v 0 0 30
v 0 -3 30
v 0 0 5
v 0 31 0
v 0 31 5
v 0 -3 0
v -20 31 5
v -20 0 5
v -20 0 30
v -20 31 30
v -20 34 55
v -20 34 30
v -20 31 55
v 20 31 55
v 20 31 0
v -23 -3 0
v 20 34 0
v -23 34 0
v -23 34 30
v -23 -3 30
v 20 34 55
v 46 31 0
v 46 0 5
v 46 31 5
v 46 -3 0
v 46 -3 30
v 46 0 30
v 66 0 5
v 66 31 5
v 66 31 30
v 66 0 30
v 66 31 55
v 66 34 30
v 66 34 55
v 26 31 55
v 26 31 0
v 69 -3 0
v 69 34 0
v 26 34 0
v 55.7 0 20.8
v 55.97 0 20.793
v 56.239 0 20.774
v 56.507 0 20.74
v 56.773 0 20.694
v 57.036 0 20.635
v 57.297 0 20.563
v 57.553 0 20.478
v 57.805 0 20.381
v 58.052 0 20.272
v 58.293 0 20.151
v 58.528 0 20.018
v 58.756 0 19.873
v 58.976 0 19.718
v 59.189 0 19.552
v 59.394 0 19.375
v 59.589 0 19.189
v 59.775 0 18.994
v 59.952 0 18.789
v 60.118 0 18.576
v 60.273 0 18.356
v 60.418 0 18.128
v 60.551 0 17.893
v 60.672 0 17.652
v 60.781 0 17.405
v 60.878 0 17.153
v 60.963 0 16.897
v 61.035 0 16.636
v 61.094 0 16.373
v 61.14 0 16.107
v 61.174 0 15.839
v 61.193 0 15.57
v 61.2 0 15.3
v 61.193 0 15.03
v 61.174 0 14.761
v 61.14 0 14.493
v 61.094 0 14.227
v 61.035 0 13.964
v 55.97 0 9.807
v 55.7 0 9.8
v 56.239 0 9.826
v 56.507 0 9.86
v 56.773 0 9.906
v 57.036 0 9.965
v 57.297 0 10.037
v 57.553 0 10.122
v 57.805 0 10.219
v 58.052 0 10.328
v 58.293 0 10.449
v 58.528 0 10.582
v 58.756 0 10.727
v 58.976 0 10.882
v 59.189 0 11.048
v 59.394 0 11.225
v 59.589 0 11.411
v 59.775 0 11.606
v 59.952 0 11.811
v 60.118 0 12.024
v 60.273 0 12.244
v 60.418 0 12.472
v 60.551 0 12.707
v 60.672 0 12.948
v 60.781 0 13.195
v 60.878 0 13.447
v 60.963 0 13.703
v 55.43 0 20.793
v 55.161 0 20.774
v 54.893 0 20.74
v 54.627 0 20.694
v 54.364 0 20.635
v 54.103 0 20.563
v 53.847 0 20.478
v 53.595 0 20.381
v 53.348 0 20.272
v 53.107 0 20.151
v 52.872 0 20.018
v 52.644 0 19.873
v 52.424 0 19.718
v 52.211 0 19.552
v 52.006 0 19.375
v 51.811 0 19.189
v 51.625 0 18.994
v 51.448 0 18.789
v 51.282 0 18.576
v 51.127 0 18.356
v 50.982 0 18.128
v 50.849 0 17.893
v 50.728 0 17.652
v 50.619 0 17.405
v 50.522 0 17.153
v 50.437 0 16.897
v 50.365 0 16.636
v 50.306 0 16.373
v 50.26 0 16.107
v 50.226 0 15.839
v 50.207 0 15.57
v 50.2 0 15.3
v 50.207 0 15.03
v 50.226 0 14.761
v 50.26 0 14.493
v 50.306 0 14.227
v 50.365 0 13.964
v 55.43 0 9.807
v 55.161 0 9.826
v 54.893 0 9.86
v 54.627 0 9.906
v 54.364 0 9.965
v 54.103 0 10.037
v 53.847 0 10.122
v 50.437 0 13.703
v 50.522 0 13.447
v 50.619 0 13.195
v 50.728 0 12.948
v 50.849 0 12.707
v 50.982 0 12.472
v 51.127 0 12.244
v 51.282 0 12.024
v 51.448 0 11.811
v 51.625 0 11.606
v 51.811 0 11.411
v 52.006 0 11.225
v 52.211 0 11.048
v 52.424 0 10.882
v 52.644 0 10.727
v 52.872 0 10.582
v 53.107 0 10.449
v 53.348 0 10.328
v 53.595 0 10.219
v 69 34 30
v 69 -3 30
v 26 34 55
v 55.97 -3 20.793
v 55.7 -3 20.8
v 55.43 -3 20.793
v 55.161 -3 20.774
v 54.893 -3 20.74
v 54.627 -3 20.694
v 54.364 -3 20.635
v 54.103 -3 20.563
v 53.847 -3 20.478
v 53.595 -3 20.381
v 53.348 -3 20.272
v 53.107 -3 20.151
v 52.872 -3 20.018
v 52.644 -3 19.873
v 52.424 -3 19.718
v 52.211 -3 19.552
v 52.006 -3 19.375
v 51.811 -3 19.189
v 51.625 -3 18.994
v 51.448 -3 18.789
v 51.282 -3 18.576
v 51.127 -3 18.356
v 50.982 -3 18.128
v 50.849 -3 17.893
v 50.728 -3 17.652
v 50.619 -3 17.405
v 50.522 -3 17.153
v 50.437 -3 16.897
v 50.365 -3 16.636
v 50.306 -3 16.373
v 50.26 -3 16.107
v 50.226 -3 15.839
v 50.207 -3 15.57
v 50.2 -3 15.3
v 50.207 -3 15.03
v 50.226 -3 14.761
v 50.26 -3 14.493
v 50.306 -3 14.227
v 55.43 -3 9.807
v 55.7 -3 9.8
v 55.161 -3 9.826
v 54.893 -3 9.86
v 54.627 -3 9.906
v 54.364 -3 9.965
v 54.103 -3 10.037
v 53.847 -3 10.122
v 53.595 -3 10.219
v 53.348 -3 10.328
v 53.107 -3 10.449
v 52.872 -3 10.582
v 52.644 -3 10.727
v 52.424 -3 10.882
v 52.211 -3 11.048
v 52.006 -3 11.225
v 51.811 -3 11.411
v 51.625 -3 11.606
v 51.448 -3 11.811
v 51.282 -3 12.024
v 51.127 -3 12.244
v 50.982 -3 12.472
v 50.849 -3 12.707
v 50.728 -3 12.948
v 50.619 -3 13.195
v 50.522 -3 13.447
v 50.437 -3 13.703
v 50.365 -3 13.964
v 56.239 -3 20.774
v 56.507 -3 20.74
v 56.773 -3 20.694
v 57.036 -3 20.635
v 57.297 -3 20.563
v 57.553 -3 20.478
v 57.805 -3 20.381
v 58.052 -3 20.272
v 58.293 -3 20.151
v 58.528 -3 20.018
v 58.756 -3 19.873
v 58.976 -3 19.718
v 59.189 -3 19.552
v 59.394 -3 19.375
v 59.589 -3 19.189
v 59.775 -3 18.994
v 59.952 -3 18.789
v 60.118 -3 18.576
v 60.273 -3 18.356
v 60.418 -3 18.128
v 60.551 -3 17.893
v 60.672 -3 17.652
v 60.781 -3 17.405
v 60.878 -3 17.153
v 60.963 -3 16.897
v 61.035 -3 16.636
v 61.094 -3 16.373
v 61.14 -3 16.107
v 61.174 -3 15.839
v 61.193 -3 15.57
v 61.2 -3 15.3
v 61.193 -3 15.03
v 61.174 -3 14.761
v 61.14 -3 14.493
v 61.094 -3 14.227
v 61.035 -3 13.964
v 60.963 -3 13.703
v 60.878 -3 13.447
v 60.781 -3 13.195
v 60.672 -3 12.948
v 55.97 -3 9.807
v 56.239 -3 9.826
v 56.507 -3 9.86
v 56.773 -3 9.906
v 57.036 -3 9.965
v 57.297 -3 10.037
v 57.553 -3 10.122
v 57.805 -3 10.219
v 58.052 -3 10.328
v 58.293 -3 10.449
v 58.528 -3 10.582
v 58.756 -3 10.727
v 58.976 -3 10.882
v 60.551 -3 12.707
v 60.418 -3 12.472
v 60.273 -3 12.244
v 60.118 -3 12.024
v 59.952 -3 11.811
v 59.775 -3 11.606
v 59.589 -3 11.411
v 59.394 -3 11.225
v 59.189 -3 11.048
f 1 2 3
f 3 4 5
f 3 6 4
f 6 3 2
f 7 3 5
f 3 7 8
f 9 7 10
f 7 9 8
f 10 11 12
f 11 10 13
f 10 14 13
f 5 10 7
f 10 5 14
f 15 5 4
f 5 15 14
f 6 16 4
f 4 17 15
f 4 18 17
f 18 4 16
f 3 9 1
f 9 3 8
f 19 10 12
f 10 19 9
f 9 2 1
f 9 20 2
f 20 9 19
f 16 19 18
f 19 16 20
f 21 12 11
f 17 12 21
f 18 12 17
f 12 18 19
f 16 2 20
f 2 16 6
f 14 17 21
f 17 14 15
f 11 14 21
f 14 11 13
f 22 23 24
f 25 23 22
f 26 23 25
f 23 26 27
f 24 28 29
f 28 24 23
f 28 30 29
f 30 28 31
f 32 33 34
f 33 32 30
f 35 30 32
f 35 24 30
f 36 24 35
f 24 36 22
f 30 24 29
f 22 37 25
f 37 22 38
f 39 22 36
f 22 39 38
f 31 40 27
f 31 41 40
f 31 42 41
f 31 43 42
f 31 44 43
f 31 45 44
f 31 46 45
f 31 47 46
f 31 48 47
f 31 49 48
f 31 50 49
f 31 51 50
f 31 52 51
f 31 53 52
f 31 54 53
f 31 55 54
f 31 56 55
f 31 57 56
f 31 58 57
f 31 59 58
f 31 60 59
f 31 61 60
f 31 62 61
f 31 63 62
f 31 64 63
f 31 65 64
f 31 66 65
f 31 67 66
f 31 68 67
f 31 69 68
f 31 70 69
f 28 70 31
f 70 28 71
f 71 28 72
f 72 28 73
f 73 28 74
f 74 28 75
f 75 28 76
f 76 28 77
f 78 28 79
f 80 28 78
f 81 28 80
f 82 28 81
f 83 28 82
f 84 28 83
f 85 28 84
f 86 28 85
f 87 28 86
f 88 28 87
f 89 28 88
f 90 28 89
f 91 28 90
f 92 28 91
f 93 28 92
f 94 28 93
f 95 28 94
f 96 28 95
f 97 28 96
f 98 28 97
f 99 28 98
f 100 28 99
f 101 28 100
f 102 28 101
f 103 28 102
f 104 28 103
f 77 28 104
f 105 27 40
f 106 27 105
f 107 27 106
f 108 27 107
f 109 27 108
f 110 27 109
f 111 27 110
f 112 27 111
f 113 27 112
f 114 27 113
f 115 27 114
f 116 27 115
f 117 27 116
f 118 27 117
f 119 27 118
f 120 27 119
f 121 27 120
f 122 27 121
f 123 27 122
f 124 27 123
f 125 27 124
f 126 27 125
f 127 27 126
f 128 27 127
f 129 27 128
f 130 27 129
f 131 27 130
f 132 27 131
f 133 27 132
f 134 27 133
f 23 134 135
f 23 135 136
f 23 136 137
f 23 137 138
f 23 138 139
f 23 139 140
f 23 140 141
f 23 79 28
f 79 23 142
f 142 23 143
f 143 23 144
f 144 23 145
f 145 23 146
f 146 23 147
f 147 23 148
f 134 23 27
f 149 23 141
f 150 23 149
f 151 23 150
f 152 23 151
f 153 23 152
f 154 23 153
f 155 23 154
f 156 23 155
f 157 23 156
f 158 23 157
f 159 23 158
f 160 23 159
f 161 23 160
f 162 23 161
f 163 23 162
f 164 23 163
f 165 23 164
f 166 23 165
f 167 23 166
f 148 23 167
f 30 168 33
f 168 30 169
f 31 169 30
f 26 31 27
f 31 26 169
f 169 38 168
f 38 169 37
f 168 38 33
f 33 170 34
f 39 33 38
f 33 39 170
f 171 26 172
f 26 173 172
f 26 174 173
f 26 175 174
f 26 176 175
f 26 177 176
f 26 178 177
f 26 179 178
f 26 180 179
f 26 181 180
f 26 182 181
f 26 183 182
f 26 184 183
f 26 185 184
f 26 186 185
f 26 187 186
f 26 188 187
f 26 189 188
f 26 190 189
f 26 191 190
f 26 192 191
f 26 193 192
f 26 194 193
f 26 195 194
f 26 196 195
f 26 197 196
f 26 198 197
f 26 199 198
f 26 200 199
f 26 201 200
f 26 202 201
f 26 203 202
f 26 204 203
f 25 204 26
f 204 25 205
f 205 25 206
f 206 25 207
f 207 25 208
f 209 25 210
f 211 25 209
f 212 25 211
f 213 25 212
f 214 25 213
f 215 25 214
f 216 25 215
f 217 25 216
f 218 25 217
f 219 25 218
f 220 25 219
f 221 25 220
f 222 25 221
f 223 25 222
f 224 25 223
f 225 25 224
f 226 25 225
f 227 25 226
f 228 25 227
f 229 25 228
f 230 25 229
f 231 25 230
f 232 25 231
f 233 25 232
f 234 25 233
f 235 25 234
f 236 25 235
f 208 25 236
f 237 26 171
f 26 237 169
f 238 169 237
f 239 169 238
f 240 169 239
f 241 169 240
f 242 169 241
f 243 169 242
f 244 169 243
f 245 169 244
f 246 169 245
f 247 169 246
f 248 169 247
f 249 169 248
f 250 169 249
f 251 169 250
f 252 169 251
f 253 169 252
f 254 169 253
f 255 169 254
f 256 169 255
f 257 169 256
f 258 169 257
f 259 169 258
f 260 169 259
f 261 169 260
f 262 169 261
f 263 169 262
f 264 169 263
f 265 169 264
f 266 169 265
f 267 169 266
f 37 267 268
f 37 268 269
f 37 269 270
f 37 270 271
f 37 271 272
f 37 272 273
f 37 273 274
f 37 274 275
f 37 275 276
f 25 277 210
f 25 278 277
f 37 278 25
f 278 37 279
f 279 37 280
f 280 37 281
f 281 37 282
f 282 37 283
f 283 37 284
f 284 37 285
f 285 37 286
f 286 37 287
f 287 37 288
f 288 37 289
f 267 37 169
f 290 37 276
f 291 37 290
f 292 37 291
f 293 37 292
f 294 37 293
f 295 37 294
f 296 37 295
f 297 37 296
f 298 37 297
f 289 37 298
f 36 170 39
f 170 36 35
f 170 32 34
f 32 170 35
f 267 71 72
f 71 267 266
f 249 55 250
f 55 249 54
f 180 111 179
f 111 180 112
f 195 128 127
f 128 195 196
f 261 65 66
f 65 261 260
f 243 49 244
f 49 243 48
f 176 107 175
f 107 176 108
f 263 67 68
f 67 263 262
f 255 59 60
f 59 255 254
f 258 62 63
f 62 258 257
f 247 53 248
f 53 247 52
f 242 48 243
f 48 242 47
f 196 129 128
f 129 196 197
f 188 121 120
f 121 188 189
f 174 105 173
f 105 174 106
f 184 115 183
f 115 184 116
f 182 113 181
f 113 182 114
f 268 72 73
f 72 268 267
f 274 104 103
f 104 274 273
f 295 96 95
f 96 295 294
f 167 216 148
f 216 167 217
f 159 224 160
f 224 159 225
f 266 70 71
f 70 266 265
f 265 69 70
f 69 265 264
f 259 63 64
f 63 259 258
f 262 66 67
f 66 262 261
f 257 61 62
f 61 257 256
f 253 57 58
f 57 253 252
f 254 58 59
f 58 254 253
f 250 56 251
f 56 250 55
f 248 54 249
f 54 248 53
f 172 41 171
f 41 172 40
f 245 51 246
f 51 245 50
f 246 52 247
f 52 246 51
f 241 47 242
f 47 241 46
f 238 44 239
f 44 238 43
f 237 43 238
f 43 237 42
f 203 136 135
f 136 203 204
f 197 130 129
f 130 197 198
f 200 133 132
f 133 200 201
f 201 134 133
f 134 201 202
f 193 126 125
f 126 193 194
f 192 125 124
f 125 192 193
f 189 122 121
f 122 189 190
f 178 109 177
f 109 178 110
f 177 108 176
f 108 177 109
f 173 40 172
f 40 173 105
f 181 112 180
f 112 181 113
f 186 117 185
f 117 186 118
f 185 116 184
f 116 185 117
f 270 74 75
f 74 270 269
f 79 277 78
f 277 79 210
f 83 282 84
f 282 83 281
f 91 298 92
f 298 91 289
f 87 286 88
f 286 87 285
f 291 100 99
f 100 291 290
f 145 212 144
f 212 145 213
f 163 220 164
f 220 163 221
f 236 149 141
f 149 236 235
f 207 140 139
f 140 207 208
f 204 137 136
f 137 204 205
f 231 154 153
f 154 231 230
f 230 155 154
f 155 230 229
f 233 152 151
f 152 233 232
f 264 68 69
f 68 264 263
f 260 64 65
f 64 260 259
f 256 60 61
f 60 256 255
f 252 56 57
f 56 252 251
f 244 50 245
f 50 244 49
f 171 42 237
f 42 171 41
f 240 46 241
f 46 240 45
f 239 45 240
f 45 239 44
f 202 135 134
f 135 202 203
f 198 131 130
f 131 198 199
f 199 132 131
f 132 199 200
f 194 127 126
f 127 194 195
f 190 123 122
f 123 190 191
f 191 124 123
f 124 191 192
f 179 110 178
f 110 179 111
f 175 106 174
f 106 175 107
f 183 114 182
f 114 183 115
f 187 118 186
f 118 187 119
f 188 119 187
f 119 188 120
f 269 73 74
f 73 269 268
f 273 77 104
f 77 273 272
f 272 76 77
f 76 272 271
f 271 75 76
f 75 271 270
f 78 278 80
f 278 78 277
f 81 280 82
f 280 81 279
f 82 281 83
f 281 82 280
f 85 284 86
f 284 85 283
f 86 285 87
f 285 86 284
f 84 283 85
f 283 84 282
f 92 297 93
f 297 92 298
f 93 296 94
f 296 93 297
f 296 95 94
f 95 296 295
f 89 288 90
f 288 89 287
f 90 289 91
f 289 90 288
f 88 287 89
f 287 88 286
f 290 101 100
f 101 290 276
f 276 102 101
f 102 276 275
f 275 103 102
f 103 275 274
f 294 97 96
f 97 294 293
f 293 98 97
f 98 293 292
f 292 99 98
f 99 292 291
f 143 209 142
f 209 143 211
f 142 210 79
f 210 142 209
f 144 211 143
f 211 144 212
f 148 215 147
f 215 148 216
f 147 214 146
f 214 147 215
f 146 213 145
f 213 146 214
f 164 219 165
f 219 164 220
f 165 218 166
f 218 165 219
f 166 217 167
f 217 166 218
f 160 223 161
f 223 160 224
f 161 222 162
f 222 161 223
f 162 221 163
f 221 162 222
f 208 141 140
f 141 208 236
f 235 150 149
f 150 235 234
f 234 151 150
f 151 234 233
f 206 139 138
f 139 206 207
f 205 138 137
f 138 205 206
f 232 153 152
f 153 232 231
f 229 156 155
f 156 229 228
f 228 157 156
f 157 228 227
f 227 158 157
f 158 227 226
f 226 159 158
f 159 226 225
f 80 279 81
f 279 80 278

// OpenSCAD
$fn = 128;

bottomThickness = 5;
wallThickness = 3;
cornerHeight = 25;
cornerWidth = 20;
cornerDepth = 31;
powerButtonDia = 11;
powerButtonOffset = 4.8;


module dockHolderCorner(powerButton = true) {

    difference() {
        union() {
            // bottom wall
            cube([cornerWidth, cornerDepth, bottomThickness]);
            
            // side wall
            translate([cornerWidth, -wallThickness, 0])
                cube([wallThickness, cornerDepth + 2 * wallThickness, cornerHeight + bottomThickness]);
            
            // front wall
            translate([0, -wallThickness, 0])
                cube([cornerWidth, wallThickness, bottomThickness + cornerHeight]);
            
            // back wall
            translate([- cornerWidth, cornerDepth, 0])
                cube([cornerWidth * 2, wallThickness, bottomThickness + cornerHeight * 2]);
        }
        
        // cutout for power button
        if (powerButton) {
            translate([cornerWidth - powerButtonOffset - powerButtonDia/2, 0, bottomThickness + powerButtonOffset + powerButtonDia/2])
                rotate([90, 0, 0])
                    cylinder(d = powerButtonDia, h = wallThickness);
        }
    }
}

mirror([1, 0, 0])
    dockHolderCorner(false);

translate([(cornerWidth + wallThickness) * 2, 0, 0])
    dockHolderCorner();
